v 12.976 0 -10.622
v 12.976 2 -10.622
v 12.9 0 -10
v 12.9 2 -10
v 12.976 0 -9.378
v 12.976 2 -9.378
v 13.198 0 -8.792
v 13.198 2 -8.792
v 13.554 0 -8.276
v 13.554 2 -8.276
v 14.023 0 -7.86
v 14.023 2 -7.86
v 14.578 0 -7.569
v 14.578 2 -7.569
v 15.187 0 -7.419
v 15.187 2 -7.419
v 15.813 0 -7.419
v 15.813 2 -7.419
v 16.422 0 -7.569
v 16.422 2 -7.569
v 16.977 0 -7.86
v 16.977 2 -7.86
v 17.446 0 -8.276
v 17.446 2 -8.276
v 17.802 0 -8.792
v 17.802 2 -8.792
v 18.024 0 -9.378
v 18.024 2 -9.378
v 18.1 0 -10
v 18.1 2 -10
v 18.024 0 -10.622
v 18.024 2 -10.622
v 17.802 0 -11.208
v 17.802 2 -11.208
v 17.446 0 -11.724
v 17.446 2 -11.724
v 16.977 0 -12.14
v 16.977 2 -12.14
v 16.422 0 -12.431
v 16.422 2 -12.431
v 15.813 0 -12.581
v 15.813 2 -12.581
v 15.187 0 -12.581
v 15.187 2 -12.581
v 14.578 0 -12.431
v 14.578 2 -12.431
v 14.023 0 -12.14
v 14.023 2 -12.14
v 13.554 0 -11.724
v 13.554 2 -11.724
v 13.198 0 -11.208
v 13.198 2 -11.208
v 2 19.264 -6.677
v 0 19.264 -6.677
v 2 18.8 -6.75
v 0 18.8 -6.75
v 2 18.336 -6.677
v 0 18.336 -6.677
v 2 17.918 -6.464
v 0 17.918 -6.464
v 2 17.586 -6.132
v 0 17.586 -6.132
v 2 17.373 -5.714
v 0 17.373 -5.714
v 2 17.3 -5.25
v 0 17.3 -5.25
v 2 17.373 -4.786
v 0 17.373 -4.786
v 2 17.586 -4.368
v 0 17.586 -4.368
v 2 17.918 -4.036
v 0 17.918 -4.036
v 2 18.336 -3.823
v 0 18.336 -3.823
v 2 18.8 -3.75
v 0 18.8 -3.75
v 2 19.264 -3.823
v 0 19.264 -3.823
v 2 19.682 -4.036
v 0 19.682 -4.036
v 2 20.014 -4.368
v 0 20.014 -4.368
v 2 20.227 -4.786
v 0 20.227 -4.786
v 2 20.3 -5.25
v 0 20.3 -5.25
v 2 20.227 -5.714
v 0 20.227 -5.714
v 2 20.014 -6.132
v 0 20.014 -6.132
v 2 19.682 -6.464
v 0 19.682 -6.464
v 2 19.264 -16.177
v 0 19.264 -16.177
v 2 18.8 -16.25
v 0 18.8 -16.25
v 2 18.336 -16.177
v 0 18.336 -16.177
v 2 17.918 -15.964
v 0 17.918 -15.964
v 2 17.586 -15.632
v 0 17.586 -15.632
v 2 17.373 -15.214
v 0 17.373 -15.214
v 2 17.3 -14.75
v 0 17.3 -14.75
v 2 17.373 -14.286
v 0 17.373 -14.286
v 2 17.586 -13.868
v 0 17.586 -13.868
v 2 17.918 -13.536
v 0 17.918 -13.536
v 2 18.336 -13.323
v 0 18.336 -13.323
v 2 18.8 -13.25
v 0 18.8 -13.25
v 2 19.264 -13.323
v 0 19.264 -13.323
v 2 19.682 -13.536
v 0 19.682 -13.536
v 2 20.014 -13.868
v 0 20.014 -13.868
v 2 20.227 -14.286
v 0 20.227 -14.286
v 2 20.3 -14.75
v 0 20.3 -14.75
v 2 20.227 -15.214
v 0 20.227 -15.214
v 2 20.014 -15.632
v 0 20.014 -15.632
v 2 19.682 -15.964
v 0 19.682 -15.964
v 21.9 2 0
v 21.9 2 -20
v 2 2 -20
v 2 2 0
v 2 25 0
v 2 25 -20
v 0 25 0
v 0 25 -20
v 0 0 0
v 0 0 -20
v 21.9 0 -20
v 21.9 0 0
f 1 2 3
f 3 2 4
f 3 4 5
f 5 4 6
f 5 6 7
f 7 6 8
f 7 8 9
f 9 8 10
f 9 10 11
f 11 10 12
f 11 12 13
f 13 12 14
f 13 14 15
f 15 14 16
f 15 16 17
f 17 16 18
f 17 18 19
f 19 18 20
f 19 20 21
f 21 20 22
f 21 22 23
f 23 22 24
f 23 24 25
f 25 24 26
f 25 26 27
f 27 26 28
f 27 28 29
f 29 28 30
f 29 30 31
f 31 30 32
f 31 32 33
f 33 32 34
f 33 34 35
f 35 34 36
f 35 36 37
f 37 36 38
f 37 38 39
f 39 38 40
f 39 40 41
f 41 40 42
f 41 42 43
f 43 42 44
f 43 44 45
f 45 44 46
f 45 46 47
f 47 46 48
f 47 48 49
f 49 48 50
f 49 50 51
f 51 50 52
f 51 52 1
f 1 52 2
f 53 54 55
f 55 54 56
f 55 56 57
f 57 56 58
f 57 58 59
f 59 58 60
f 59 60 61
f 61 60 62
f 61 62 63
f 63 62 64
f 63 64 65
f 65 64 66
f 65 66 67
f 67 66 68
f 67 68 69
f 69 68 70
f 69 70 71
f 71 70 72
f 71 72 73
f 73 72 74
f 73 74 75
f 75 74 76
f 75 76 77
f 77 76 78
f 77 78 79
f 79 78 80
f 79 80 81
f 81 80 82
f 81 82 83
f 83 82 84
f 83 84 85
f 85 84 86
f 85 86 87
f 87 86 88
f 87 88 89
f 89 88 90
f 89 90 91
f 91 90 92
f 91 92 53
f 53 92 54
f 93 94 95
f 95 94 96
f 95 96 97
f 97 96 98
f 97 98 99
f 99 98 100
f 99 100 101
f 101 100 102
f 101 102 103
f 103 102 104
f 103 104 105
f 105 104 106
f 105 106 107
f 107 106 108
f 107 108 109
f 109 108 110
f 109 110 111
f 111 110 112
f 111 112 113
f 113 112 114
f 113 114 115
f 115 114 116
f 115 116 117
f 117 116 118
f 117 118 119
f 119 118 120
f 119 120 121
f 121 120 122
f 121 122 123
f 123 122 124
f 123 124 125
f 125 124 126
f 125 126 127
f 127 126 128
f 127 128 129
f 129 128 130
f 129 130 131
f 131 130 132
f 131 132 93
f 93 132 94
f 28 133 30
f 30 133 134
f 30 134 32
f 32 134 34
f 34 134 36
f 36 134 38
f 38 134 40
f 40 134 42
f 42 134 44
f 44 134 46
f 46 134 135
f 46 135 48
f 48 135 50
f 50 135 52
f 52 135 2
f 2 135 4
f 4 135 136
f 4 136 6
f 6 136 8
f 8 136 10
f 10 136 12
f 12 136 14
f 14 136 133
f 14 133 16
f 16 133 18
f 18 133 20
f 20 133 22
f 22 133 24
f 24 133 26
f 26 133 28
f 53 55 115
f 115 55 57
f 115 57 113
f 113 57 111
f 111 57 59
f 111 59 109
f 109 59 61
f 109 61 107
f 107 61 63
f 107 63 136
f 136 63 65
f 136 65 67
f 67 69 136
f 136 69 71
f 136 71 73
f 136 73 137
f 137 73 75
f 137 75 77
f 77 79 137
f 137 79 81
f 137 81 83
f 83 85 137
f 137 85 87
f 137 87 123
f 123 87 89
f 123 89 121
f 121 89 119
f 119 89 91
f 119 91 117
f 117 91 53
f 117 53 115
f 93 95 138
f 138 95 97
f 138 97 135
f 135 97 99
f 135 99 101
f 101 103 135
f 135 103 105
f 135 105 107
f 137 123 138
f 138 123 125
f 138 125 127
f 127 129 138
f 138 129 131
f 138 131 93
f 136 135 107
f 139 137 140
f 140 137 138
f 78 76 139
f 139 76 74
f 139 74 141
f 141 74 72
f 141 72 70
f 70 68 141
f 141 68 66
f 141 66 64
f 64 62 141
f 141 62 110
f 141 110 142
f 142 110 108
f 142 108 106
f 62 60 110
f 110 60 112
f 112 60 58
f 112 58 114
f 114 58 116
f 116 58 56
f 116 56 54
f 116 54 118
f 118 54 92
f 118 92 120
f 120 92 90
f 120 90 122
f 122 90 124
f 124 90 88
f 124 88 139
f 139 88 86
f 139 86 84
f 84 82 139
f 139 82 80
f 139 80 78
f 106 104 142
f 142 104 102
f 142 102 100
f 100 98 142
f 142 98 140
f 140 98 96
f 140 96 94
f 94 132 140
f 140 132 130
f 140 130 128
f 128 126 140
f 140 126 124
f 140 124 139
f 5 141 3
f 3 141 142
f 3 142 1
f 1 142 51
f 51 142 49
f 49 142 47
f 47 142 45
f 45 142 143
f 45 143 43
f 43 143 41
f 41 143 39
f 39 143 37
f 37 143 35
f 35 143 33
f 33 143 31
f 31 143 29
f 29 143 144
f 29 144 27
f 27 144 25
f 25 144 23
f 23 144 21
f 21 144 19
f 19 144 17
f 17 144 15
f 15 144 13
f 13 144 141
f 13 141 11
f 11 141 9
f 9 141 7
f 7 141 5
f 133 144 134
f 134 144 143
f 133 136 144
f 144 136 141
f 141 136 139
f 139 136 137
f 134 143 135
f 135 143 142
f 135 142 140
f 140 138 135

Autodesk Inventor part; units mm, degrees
ref_plane "YZ Plane" through (0, 0, 0) normal (1, 0, 0) x (0, 1, 0)
ref_plane "XZ Plane" through (0, 0, 0) normal (0, 1, 0) x (-1, 0, 0)
ref_plane "XY Plane" through (0, 0, 0) normal (0, 0, 1) x (1, 0, 0)
sketch "Sketch1" plane through (0, 0, 0) normal (0, 0, 1) x (1, 0, 0)
  line L0 (0, 0) -> (21.9, 0)
  line L1 (21.9, 0) -> (21.9, 25)
  line L2 (21.9, 25) -> (0, 25)
  line L3 (0, 25) -> (0, 0)
  line L4 (21.9, 25) -> (2, 25)
  line L5 (2, 25) -> (2, 2)
  line L6 (2, 2) -> (21.9, 2)
  line L7 (21.9, 2) -> (21.9, 25)
  point P0 (21.9, 2)
  dimension "d0" = 21.9
  dimension "d1" = 25
  dimension "d2" = 2
  dimension "d3" = 2
extrude "Extrusion1" add sketch "Sketch1" against normal blind 20 contours L3 L2 L5 L6 L1 L0
sketch "Sketch2" plane through (0, 0, 0) normal (-1, 0, 0) x (0, 0, 1)
  line L0 (-20, 2) -> (-20, 0) projected
  line L1 (-20, 0) -> (-20, 18.8)
  line L2 (-20, 18.8) -> (0, 18.8)
  line L3 (0, 25) -> (0, 0) projected
  circle A0 centre (-14.75, 18.8) radius 1.5
  circle A1 centre (-5.25, 18.8) radius 1.5
  dimension "d6" = 18.8
  dimension "d7" = 3
  dimension "d8" = 3
  dimension "d9" = 9.5
  dimension "d10" = 5.25
extrude "Extrusion2" cut sketch "Sketch2" against normal through all
sketch "Sketch4" plane through (2, 2, 0) normal (0, 1, 0) x (1, 0, 0)
  line L0 (0, 0) -> (0, 20) projected
  line L1 (0, 10) -> (13.5, 10)
  circle A0 centre (13.5, 10) radius 2.6
  point P0 (-2, 0)
  dimension "d13" = 13.5
  dimension "d14" = 5.2
extrude "Extrusion3" cut sketch "Sketch4" against normal through all
properties part number "LimitSwitch Center Gantry Mount"
